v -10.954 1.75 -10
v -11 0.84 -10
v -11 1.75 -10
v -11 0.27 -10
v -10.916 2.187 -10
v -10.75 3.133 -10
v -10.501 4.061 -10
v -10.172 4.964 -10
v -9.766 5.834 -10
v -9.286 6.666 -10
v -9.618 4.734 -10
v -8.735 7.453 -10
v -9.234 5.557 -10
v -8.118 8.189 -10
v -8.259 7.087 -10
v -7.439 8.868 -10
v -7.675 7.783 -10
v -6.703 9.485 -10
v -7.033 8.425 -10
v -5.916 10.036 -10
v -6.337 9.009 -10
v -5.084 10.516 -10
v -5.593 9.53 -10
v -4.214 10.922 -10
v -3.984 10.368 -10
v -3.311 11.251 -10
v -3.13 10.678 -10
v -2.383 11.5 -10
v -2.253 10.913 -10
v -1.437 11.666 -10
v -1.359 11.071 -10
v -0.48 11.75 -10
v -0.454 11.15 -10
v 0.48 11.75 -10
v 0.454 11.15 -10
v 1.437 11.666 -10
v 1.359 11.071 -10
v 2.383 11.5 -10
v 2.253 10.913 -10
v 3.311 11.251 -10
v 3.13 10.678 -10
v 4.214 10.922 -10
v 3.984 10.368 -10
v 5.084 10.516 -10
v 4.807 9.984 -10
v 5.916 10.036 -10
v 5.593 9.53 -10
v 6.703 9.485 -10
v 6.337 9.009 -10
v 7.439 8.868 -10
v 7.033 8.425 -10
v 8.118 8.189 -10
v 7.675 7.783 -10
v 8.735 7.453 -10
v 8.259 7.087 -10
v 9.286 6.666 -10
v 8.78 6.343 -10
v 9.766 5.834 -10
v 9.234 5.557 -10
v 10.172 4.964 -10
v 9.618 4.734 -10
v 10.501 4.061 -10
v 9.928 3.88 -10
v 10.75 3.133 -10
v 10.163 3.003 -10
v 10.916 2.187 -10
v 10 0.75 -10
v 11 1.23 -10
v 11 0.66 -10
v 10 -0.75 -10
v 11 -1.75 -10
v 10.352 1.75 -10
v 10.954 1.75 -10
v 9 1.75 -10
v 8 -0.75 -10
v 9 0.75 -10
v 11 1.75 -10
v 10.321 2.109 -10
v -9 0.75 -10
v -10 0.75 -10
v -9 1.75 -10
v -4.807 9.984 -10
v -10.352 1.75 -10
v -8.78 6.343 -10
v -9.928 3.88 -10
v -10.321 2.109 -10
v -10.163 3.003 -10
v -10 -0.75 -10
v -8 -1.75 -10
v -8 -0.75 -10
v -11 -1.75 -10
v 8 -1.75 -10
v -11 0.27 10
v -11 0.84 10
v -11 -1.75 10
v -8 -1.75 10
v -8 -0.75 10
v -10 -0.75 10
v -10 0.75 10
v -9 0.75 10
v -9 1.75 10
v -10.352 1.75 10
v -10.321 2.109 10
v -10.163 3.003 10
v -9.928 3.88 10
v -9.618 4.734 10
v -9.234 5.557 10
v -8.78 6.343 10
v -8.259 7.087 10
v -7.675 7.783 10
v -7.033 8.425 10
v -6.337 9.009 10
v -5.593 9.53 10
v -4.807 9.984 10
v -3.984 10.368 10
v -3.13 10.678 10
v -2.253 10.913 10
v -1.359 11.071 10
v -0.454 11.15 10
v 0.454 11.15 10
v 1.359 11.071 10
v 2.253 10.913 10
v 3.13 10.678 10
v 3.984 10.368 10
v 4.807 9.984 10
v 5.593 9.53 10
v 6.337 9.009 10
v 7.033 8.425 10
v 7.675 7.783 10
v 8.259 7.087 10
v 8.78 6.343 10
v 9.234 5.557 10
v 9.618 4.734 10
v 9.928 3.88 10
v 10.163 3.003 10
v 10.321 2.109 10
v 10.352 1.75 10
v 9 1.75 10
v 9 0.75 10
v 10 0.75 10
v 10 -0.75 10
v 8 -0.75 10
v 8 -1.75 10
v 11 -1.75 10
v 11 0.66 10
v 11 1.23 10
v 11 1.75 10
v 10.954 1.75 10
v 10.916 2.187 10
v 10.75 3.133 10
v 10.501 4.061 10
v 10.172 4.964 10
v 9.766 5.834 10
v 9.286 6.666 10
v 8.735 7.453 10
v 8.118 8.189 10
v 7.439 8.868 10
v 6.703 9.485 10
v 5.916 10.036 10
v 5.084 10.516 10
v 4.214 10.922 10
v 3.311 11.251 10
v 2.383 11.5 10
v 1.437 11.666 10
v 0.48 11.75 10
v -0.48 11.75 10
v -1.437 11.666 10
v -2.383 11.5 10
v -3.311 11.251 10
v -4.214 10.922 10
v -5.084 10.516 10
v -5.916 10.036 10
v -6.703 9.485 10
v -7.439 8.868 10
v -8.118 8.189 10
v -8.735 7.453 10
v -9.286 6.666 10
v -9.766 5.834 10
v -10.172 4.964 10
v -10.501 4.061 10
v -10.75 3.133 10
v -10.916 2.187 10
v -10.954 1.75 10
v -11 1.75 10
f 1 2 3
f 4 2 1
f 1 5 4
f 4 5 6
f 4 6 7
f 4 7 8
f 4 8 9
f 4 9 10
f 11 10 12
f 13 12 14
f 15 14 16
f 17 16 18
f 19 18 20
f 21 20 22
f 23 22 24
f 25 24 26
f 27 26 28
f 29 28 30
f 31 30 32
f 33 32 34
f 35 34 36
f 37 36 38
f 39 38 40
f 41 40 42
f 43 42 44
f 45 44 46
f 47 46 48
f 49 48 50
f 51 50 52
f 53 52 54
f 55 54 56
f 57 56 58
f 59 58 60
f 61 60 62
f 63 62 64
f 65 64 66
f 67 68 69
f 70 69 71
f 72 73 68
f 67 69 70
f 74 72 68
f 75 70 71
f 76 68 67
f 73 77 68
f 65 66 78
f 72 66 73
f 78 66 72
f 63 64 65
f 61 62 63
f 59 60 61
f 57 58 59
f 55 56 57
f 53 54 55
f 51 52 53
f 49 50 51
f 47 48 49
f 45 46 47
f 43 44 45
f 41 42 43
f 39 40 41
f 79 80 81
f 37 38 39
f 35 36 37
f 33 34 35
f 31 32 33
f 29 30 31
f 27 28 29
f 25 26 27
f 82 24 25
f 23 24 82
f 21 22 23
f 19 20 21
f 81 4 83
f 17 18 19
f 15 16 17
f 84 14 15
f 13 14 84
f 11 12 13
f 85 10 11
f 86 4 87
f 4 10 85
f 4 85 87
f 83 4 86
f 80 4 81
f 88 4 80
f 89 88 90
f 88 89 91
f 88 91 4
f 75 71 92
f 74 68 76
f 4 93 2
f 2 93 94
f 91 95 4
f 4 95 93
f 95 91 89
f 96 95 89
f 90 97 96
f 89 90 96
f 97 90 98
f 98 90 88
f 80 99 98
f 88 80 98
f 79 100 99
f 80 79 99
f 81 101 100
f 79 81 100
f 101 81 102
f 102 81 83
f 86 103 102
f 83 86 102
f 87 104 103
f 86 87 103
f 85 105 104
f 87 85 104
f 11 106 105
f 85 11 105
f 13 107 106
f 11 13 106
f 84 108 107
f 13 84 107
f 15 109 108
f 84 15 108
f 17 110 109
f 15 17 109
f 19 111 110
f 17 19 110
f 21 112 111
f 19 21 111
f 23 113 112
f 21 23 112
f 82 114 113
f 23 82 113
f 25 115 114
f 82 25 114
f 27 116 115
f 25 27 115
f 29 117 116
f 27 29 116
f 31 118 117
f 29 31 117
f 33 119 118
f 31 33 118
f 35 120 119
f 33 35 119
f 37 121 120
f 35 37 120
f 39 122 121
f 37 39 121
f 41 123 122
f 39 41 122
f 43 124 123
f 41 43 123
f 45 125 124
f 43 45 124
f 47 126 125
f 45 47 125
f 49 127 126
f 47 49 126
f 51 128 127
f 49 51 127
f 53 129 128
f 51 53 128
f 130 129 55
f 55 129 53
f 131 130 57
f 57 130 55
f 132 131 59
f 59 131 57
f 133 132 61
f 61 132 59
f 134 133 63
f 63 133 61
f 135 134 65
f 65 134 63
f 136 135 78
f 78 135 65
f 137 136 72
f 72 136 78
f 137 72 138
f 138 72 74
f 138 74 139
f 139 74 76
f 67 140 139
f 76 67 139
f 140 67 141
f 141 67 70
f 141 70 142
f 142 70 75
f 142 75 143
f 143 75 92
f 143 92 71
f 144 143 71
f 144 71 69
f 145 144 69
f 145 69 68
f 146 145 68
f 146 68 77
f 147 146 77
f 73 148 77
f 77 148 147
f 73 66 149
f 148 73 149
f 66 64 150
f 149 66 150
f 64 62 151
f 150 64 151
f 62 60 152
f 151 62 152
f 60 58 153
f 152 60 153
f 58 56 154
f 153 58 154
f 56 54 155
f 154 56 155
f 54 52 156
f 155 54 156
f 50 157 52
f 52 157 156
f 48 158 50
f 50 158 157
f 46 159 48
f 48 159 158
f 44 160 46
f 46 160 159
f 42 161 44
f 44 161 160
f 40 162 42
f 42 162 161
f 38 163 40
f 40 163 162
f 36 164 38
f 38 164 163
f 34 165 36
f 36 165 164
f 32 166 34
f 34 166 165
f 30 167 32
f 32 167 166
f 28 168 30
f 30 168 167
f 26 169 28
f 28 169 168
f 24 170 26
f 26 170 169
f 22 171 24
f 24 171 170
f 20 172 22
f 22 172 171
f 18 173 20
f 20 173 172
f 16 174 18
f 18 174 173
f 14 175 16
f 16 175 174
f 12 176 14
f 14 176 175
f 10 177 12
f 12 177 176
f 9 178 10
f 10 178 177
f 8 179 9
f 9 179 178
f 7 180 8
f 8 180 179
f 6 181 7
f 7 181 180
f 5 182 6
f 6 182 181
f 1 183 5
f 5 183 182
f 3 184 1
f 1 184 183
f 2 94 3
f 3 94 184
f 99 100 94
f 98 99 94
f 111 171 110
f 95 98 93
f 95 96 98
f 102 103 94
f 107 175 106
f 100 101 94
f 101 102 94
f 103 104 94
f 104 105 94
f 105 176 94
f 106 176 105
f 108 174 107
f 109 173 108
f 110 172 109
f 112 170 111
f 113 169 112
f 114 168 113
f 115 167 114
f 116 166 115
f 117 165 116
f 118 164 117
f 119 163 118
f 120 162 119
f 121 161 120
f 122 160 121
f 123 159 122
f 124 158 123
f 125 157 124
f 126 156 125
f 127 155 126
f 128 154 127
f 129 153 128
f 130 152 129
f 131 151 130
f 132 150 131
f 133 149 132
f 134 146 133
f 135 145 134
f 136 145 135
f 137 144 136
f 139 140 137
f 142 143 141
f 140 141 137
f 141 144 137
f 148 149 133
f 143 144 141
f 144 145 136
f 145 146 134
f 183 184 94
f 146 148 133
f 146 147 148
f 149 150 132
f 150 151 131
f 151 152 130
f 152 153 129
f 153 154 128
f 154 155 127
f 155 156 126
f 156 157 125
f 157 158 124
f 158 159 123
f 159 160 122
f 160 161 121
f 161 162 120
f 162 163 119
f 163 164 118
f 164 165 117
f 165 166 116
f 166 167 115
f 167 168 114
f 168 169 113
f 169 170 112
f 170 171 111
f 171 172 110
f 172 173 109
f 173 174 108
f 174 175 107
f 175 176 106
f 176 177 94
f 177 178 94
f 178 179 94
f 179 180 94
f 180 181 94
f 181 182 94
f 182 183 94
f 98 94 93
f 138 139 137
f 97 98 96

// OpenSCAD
left = -1;
right = 1;
top = -1;
bottom = 1;

build_x = 180;
build_y = 180;
build_z = 180;

extrusion_height = 0.2;
extrusion_width = 0.5;
resolution = 72;

function accurate_diam(diam,sides) = 1 / cos(180/sides) / 2 * diam;

module hole(diam,len,sides=8) {
  rotate([0,0,180/sides]) {
    cylinder(r=accurate_diam(diam,sides),h=len,center=true,$fn=sides);
  }
}

lamp_tilt_angle = 20;
wall_thickness = 2;

insert_diam = 40;
insert_height = 70;
insert_bottom_diam = 20;
insert_bottom_height = 8;
insert_bottom_hole = 12;
insert_threaded_height = 23;

insert_mount_diam   = insert_diam + wall_thickness * 2;
insert_mount_height = insert_height - insert_threaded_height + 5;

switch_dist_from_top = 35;
switch_shaft_diam = 7;
switch_shaft_len = 60;

bulb_diam = 50;
bulb_height_above_socket = 85;
bulb_heat_clearance = 30;

shade_height      = bulb_height_above_socket + 20;
shade_height      = bulb_height_above_socket + insert_threaded_height + 20;
shade_height      = 155;
echo("SHADE HEIGHT: ", shade_height + 13);
shade_bottom_diam = insert_diam + bulb_heat_clearance;
shade_bottom_diam = 55;
shade_top_diam    = 170;
shade_wall_thickness = extrusion_width*4;

wall_brace_thickness = wall_thickness*4;
wall_plate_width     = 80;
wall_plate_thickness = wall_thickness*2;

dist_from_wall = 20;

nail_diam = 1.75;
nail_head_diam = 5;
nail_angle = 60;

module insert() {
  main_height = insert_height - insert_bottom_height;

  translate([0,0,insert_height]) {
    translate([0,0,-switch_dist_from_top]) {
      rotate([0,90,0]) {
        translate([0,0,switch_shaft_len/2]) {
          rotate([0,0,22.5-lamp_tilt_angle]) {
            hole(switch_shaft_diam,switch_shaft_len,8);
          }
        }
      }
    }

    translate([0,0,-main_height/2]) {
      hole(insert_diam,main_height,resolution);

      translate([0,0,-main_height/2]) {
        hole(insert_bottom_diam,insert_bottom_height*2,resolution);
        hole(insert_bottom_hole,main_height*2-0.05,resolution);
      }
    }
  }
}

module nail_hole() {
  hole_height = 20;
  head_hole_height = hole_height/2;

  rotate([nail_angle,0,0]) {
    rotate([0,0,22.5]) {
      hole(nail_diam,hole_height,8);

      translate([0,0,head_hole_height/2]) {
        hole(nail_head_diam,head_hole_height,8);
      }
    }
  }
}

module insert_mount() {
  material_below_insert = 0;

  overall_height = insert_mount_height+material_below_insert;

  anchor_depth = (insert_mount_diam-insert_diam)/2-1;

  module translate_wall_anchor() {
    translate([0,insert_mount_diam/2-anchor_depth/2+tan(lamp_tilt_angle)*insert_mount_diam/4],0) {
      rotate([-lamp_tilt_angle,0,0]) {
        translate([0,dist_from_wall-(tan(lamp_tilt_angle)*insert_mount_diam/2),-(sin(lamp_tilt_angle)*insert_mount_diam/2)]) {
          children();
        }
      }
    }
  }

  module body() {
    hole(insert_mount_diam, overall_height*2, resolution);

    overall_depth = insert_mount_diam/2+dist_from_wall;

    translate_wall_anchor() {
      cube([wall_brace_thickness,anchor_depth,overall_height*2],center=true);

      translate([0,-overall_depth/2,0]) {
        cube([wall_brace_thickness,overall_depth,overall_height*2],center=true);
      }
    }

    translate_wall_anchor() {
      cube([wall_plate_width,wall_plate_thickness,overall_height*2],center=true);
    }
  }

  module holes() {
    translate([0,0,material_below_insert]) {
      # insert();

      translate([0,0,insert_height+bulb_height_above_socket/2 + 1]) {
        % cylinder(r=bulb_diam/2,h=bulb_height_above_socket,center=true);
      }
    }

    translate_wall_anchor() {
      for(side=[top,0,bottom]) {
        for(end=[left,right]) {
          # translate([(wall_plate_width/2-5)*end,-anchor_depth/2,overall_height/2-1+(overall_height/2-8)*side]) {
            nail_hole();
          }
        }
      }

      // route the cord through this in case the cord gets pulled
      for (i=[1,3]) {
        translate([0,-wall_plate_thickness/2-6,overall_height/4*i]) {
          rotate([0,90,0]) {
            rotate([0,0,22.5]) {
              hole(10,40,8);
            }
          }
        }
      }
    }
  }

  difference() {
    body();
    holes();
  }
}

module shade() {
 resolution = 36*3;

  module body() {
    hull() {
      translate([0,0,-12.5]) {
        //hole(shade_bottom_diam,1,resolution);
        hole(insert_mount_diam+4,1,resolution);
      }

      translate([0,0,shade_height]) {
        hole(shade_top_diam,1,resolution);
      }
    }
  }

  module holes() {
    hull() {
      translate([0,0,3]) {
        hole(shade_bottom_diam,1,resolution);
      }

      translate([0,0,shade_height+1]) {
        hole(shade_top_diam-shade_wall_thickness*2,1,resolution);
      }
    }

    hole(insert_diam-1, 400, resolution);

    translate([0,0,-20]) {
      hole(insert_mount_diam+1,40,resolution);

      translate([0,shade_bottom_diam/2,-2]) {
        cube([wall_brace_thickness+1,shade_bottom_diam,40],center=true);
      }
    }

    // ventilation/convection holes
    // also, provide support for top layer
    num_holes = 18;
    hole_diam = 3;
    for(i=[1:num_holes]) {
      rotate([0,0,(i-.0)*(360/num_holes)]) {
        translate([0,insert_diam/2+hole_diam/2+3.5,0]) {
          rotate([15,0,0]) {
            hole(hole_diam,100,6);
          }
        }
      }
    }

    /*
    num_holes_z = 10;
    z_spacing = shade_height/num_holes_z*2;
    for(z=[1:num_holes_z]) {
      for(i=[1:num_holes/2]) {
        rotate([0,0,(i-(z%2/2))*(360/(num_holes/4))]) {
          translate([0,insert_diam/2+hole_diam/2+3,z*z_spacing]) {
            rotate([15,0,0]) {
              rotate([0,0,22.5]) {
                hole(.5,500,4);
              }
            }
          }
        }
      }
    }
    */

    top_cut_side = shade_top_diam+5;
    translate([0,-top_cut_side/2,shade_height]) {
      rotate([-lamp_tilt_angle,0,0]) {
        translate([0,top_cut_side/2,50]) {
          cube([top_cut_side,top_cut_side,100],center=true);
        }
      }
    }
  }

  module bridges() {
    translate([0,0,0]) {
      hole(insert_mount_diam+2,extrusion_height,resolution);
    }

    translate([0,0,-6.5]) {
      hole(insert_diam-4,13,resolution);
    }
  }

  difference() {
    body();
    holes();
  }

  bridges();
}

module wall_hanging_lamp() {
  module body() {
    translate([0,0,sin(lamp_tilt_angle)*insert_mount_diam/4]) {
      rotate([lamp_tilt_angle,0,0]) {
        insert_mount();

        translate([0,0,insert_mount_height+0.5]) {
          # shade();
        }
      }
    }
  }

  module holes() {
    translate([0,-tan(lamp_tilt_angle)*100,build_z/2]) {
      //% cube([build_x,build_y,build_z],center=true);
    }
    translate([0,0,-50]) {
      cube([400,400,100],center=true);
    }
  }

  difference() { body();
    holes();
  }
}

module domelight_cover() {
  light_length = 20;
  light_width  = 20;
  pcb_thickness = 1.5;
  lip_width = 1;

  resolution = 36*2;

  extrusion_width  = .5;
  extrusion_height = .2;

  module body() {
    intersection() {
      translate([0,pcb_thickness/2,0]) {
        hole(light_width+extrusion_width*4,light_length,resolution);
      }

      translate([0,light_width,0]) {
        cube([light_width*2,light_width*2,light_length+1],center=true);
      }
    }

    // pcb body
    cube([light_width+extrusion_width*4,pcb_thickness+extrusion_width*4,light_length],center=true);
  }

  module holes() {
    // main cavity
    intersection() {
      translate([0,pcb_thickness/2,0]) {
        hole(light_width+extrusion_width*2*.8,light_length+1,resolution);
      }

      translate([0,light_width+pcb_thickness/2+extrusion_width*2,0]) {
        cube([light_width*2,light_width*2,light_length+1],center=true);
      }
    }

    // pcb hole
    cube([light_width,pcb_thickness,light_length+1],center=true);

    translate([0,pcb_thickness,0]) {
      cube([light_width-lip_width*2,pcb_thickness+0.05,light_length+1],center=true);
    }

    translate([0,-pcb_thickness,0]) {
      cube([light_width-lip_width*4,pcb_thickness+0.05,light_length+1],center=true);
    }
  }

  difference() {
    body();
    holes();
  }
}

domelight_cover();

//wall_hanging_lamp();
//shade();
